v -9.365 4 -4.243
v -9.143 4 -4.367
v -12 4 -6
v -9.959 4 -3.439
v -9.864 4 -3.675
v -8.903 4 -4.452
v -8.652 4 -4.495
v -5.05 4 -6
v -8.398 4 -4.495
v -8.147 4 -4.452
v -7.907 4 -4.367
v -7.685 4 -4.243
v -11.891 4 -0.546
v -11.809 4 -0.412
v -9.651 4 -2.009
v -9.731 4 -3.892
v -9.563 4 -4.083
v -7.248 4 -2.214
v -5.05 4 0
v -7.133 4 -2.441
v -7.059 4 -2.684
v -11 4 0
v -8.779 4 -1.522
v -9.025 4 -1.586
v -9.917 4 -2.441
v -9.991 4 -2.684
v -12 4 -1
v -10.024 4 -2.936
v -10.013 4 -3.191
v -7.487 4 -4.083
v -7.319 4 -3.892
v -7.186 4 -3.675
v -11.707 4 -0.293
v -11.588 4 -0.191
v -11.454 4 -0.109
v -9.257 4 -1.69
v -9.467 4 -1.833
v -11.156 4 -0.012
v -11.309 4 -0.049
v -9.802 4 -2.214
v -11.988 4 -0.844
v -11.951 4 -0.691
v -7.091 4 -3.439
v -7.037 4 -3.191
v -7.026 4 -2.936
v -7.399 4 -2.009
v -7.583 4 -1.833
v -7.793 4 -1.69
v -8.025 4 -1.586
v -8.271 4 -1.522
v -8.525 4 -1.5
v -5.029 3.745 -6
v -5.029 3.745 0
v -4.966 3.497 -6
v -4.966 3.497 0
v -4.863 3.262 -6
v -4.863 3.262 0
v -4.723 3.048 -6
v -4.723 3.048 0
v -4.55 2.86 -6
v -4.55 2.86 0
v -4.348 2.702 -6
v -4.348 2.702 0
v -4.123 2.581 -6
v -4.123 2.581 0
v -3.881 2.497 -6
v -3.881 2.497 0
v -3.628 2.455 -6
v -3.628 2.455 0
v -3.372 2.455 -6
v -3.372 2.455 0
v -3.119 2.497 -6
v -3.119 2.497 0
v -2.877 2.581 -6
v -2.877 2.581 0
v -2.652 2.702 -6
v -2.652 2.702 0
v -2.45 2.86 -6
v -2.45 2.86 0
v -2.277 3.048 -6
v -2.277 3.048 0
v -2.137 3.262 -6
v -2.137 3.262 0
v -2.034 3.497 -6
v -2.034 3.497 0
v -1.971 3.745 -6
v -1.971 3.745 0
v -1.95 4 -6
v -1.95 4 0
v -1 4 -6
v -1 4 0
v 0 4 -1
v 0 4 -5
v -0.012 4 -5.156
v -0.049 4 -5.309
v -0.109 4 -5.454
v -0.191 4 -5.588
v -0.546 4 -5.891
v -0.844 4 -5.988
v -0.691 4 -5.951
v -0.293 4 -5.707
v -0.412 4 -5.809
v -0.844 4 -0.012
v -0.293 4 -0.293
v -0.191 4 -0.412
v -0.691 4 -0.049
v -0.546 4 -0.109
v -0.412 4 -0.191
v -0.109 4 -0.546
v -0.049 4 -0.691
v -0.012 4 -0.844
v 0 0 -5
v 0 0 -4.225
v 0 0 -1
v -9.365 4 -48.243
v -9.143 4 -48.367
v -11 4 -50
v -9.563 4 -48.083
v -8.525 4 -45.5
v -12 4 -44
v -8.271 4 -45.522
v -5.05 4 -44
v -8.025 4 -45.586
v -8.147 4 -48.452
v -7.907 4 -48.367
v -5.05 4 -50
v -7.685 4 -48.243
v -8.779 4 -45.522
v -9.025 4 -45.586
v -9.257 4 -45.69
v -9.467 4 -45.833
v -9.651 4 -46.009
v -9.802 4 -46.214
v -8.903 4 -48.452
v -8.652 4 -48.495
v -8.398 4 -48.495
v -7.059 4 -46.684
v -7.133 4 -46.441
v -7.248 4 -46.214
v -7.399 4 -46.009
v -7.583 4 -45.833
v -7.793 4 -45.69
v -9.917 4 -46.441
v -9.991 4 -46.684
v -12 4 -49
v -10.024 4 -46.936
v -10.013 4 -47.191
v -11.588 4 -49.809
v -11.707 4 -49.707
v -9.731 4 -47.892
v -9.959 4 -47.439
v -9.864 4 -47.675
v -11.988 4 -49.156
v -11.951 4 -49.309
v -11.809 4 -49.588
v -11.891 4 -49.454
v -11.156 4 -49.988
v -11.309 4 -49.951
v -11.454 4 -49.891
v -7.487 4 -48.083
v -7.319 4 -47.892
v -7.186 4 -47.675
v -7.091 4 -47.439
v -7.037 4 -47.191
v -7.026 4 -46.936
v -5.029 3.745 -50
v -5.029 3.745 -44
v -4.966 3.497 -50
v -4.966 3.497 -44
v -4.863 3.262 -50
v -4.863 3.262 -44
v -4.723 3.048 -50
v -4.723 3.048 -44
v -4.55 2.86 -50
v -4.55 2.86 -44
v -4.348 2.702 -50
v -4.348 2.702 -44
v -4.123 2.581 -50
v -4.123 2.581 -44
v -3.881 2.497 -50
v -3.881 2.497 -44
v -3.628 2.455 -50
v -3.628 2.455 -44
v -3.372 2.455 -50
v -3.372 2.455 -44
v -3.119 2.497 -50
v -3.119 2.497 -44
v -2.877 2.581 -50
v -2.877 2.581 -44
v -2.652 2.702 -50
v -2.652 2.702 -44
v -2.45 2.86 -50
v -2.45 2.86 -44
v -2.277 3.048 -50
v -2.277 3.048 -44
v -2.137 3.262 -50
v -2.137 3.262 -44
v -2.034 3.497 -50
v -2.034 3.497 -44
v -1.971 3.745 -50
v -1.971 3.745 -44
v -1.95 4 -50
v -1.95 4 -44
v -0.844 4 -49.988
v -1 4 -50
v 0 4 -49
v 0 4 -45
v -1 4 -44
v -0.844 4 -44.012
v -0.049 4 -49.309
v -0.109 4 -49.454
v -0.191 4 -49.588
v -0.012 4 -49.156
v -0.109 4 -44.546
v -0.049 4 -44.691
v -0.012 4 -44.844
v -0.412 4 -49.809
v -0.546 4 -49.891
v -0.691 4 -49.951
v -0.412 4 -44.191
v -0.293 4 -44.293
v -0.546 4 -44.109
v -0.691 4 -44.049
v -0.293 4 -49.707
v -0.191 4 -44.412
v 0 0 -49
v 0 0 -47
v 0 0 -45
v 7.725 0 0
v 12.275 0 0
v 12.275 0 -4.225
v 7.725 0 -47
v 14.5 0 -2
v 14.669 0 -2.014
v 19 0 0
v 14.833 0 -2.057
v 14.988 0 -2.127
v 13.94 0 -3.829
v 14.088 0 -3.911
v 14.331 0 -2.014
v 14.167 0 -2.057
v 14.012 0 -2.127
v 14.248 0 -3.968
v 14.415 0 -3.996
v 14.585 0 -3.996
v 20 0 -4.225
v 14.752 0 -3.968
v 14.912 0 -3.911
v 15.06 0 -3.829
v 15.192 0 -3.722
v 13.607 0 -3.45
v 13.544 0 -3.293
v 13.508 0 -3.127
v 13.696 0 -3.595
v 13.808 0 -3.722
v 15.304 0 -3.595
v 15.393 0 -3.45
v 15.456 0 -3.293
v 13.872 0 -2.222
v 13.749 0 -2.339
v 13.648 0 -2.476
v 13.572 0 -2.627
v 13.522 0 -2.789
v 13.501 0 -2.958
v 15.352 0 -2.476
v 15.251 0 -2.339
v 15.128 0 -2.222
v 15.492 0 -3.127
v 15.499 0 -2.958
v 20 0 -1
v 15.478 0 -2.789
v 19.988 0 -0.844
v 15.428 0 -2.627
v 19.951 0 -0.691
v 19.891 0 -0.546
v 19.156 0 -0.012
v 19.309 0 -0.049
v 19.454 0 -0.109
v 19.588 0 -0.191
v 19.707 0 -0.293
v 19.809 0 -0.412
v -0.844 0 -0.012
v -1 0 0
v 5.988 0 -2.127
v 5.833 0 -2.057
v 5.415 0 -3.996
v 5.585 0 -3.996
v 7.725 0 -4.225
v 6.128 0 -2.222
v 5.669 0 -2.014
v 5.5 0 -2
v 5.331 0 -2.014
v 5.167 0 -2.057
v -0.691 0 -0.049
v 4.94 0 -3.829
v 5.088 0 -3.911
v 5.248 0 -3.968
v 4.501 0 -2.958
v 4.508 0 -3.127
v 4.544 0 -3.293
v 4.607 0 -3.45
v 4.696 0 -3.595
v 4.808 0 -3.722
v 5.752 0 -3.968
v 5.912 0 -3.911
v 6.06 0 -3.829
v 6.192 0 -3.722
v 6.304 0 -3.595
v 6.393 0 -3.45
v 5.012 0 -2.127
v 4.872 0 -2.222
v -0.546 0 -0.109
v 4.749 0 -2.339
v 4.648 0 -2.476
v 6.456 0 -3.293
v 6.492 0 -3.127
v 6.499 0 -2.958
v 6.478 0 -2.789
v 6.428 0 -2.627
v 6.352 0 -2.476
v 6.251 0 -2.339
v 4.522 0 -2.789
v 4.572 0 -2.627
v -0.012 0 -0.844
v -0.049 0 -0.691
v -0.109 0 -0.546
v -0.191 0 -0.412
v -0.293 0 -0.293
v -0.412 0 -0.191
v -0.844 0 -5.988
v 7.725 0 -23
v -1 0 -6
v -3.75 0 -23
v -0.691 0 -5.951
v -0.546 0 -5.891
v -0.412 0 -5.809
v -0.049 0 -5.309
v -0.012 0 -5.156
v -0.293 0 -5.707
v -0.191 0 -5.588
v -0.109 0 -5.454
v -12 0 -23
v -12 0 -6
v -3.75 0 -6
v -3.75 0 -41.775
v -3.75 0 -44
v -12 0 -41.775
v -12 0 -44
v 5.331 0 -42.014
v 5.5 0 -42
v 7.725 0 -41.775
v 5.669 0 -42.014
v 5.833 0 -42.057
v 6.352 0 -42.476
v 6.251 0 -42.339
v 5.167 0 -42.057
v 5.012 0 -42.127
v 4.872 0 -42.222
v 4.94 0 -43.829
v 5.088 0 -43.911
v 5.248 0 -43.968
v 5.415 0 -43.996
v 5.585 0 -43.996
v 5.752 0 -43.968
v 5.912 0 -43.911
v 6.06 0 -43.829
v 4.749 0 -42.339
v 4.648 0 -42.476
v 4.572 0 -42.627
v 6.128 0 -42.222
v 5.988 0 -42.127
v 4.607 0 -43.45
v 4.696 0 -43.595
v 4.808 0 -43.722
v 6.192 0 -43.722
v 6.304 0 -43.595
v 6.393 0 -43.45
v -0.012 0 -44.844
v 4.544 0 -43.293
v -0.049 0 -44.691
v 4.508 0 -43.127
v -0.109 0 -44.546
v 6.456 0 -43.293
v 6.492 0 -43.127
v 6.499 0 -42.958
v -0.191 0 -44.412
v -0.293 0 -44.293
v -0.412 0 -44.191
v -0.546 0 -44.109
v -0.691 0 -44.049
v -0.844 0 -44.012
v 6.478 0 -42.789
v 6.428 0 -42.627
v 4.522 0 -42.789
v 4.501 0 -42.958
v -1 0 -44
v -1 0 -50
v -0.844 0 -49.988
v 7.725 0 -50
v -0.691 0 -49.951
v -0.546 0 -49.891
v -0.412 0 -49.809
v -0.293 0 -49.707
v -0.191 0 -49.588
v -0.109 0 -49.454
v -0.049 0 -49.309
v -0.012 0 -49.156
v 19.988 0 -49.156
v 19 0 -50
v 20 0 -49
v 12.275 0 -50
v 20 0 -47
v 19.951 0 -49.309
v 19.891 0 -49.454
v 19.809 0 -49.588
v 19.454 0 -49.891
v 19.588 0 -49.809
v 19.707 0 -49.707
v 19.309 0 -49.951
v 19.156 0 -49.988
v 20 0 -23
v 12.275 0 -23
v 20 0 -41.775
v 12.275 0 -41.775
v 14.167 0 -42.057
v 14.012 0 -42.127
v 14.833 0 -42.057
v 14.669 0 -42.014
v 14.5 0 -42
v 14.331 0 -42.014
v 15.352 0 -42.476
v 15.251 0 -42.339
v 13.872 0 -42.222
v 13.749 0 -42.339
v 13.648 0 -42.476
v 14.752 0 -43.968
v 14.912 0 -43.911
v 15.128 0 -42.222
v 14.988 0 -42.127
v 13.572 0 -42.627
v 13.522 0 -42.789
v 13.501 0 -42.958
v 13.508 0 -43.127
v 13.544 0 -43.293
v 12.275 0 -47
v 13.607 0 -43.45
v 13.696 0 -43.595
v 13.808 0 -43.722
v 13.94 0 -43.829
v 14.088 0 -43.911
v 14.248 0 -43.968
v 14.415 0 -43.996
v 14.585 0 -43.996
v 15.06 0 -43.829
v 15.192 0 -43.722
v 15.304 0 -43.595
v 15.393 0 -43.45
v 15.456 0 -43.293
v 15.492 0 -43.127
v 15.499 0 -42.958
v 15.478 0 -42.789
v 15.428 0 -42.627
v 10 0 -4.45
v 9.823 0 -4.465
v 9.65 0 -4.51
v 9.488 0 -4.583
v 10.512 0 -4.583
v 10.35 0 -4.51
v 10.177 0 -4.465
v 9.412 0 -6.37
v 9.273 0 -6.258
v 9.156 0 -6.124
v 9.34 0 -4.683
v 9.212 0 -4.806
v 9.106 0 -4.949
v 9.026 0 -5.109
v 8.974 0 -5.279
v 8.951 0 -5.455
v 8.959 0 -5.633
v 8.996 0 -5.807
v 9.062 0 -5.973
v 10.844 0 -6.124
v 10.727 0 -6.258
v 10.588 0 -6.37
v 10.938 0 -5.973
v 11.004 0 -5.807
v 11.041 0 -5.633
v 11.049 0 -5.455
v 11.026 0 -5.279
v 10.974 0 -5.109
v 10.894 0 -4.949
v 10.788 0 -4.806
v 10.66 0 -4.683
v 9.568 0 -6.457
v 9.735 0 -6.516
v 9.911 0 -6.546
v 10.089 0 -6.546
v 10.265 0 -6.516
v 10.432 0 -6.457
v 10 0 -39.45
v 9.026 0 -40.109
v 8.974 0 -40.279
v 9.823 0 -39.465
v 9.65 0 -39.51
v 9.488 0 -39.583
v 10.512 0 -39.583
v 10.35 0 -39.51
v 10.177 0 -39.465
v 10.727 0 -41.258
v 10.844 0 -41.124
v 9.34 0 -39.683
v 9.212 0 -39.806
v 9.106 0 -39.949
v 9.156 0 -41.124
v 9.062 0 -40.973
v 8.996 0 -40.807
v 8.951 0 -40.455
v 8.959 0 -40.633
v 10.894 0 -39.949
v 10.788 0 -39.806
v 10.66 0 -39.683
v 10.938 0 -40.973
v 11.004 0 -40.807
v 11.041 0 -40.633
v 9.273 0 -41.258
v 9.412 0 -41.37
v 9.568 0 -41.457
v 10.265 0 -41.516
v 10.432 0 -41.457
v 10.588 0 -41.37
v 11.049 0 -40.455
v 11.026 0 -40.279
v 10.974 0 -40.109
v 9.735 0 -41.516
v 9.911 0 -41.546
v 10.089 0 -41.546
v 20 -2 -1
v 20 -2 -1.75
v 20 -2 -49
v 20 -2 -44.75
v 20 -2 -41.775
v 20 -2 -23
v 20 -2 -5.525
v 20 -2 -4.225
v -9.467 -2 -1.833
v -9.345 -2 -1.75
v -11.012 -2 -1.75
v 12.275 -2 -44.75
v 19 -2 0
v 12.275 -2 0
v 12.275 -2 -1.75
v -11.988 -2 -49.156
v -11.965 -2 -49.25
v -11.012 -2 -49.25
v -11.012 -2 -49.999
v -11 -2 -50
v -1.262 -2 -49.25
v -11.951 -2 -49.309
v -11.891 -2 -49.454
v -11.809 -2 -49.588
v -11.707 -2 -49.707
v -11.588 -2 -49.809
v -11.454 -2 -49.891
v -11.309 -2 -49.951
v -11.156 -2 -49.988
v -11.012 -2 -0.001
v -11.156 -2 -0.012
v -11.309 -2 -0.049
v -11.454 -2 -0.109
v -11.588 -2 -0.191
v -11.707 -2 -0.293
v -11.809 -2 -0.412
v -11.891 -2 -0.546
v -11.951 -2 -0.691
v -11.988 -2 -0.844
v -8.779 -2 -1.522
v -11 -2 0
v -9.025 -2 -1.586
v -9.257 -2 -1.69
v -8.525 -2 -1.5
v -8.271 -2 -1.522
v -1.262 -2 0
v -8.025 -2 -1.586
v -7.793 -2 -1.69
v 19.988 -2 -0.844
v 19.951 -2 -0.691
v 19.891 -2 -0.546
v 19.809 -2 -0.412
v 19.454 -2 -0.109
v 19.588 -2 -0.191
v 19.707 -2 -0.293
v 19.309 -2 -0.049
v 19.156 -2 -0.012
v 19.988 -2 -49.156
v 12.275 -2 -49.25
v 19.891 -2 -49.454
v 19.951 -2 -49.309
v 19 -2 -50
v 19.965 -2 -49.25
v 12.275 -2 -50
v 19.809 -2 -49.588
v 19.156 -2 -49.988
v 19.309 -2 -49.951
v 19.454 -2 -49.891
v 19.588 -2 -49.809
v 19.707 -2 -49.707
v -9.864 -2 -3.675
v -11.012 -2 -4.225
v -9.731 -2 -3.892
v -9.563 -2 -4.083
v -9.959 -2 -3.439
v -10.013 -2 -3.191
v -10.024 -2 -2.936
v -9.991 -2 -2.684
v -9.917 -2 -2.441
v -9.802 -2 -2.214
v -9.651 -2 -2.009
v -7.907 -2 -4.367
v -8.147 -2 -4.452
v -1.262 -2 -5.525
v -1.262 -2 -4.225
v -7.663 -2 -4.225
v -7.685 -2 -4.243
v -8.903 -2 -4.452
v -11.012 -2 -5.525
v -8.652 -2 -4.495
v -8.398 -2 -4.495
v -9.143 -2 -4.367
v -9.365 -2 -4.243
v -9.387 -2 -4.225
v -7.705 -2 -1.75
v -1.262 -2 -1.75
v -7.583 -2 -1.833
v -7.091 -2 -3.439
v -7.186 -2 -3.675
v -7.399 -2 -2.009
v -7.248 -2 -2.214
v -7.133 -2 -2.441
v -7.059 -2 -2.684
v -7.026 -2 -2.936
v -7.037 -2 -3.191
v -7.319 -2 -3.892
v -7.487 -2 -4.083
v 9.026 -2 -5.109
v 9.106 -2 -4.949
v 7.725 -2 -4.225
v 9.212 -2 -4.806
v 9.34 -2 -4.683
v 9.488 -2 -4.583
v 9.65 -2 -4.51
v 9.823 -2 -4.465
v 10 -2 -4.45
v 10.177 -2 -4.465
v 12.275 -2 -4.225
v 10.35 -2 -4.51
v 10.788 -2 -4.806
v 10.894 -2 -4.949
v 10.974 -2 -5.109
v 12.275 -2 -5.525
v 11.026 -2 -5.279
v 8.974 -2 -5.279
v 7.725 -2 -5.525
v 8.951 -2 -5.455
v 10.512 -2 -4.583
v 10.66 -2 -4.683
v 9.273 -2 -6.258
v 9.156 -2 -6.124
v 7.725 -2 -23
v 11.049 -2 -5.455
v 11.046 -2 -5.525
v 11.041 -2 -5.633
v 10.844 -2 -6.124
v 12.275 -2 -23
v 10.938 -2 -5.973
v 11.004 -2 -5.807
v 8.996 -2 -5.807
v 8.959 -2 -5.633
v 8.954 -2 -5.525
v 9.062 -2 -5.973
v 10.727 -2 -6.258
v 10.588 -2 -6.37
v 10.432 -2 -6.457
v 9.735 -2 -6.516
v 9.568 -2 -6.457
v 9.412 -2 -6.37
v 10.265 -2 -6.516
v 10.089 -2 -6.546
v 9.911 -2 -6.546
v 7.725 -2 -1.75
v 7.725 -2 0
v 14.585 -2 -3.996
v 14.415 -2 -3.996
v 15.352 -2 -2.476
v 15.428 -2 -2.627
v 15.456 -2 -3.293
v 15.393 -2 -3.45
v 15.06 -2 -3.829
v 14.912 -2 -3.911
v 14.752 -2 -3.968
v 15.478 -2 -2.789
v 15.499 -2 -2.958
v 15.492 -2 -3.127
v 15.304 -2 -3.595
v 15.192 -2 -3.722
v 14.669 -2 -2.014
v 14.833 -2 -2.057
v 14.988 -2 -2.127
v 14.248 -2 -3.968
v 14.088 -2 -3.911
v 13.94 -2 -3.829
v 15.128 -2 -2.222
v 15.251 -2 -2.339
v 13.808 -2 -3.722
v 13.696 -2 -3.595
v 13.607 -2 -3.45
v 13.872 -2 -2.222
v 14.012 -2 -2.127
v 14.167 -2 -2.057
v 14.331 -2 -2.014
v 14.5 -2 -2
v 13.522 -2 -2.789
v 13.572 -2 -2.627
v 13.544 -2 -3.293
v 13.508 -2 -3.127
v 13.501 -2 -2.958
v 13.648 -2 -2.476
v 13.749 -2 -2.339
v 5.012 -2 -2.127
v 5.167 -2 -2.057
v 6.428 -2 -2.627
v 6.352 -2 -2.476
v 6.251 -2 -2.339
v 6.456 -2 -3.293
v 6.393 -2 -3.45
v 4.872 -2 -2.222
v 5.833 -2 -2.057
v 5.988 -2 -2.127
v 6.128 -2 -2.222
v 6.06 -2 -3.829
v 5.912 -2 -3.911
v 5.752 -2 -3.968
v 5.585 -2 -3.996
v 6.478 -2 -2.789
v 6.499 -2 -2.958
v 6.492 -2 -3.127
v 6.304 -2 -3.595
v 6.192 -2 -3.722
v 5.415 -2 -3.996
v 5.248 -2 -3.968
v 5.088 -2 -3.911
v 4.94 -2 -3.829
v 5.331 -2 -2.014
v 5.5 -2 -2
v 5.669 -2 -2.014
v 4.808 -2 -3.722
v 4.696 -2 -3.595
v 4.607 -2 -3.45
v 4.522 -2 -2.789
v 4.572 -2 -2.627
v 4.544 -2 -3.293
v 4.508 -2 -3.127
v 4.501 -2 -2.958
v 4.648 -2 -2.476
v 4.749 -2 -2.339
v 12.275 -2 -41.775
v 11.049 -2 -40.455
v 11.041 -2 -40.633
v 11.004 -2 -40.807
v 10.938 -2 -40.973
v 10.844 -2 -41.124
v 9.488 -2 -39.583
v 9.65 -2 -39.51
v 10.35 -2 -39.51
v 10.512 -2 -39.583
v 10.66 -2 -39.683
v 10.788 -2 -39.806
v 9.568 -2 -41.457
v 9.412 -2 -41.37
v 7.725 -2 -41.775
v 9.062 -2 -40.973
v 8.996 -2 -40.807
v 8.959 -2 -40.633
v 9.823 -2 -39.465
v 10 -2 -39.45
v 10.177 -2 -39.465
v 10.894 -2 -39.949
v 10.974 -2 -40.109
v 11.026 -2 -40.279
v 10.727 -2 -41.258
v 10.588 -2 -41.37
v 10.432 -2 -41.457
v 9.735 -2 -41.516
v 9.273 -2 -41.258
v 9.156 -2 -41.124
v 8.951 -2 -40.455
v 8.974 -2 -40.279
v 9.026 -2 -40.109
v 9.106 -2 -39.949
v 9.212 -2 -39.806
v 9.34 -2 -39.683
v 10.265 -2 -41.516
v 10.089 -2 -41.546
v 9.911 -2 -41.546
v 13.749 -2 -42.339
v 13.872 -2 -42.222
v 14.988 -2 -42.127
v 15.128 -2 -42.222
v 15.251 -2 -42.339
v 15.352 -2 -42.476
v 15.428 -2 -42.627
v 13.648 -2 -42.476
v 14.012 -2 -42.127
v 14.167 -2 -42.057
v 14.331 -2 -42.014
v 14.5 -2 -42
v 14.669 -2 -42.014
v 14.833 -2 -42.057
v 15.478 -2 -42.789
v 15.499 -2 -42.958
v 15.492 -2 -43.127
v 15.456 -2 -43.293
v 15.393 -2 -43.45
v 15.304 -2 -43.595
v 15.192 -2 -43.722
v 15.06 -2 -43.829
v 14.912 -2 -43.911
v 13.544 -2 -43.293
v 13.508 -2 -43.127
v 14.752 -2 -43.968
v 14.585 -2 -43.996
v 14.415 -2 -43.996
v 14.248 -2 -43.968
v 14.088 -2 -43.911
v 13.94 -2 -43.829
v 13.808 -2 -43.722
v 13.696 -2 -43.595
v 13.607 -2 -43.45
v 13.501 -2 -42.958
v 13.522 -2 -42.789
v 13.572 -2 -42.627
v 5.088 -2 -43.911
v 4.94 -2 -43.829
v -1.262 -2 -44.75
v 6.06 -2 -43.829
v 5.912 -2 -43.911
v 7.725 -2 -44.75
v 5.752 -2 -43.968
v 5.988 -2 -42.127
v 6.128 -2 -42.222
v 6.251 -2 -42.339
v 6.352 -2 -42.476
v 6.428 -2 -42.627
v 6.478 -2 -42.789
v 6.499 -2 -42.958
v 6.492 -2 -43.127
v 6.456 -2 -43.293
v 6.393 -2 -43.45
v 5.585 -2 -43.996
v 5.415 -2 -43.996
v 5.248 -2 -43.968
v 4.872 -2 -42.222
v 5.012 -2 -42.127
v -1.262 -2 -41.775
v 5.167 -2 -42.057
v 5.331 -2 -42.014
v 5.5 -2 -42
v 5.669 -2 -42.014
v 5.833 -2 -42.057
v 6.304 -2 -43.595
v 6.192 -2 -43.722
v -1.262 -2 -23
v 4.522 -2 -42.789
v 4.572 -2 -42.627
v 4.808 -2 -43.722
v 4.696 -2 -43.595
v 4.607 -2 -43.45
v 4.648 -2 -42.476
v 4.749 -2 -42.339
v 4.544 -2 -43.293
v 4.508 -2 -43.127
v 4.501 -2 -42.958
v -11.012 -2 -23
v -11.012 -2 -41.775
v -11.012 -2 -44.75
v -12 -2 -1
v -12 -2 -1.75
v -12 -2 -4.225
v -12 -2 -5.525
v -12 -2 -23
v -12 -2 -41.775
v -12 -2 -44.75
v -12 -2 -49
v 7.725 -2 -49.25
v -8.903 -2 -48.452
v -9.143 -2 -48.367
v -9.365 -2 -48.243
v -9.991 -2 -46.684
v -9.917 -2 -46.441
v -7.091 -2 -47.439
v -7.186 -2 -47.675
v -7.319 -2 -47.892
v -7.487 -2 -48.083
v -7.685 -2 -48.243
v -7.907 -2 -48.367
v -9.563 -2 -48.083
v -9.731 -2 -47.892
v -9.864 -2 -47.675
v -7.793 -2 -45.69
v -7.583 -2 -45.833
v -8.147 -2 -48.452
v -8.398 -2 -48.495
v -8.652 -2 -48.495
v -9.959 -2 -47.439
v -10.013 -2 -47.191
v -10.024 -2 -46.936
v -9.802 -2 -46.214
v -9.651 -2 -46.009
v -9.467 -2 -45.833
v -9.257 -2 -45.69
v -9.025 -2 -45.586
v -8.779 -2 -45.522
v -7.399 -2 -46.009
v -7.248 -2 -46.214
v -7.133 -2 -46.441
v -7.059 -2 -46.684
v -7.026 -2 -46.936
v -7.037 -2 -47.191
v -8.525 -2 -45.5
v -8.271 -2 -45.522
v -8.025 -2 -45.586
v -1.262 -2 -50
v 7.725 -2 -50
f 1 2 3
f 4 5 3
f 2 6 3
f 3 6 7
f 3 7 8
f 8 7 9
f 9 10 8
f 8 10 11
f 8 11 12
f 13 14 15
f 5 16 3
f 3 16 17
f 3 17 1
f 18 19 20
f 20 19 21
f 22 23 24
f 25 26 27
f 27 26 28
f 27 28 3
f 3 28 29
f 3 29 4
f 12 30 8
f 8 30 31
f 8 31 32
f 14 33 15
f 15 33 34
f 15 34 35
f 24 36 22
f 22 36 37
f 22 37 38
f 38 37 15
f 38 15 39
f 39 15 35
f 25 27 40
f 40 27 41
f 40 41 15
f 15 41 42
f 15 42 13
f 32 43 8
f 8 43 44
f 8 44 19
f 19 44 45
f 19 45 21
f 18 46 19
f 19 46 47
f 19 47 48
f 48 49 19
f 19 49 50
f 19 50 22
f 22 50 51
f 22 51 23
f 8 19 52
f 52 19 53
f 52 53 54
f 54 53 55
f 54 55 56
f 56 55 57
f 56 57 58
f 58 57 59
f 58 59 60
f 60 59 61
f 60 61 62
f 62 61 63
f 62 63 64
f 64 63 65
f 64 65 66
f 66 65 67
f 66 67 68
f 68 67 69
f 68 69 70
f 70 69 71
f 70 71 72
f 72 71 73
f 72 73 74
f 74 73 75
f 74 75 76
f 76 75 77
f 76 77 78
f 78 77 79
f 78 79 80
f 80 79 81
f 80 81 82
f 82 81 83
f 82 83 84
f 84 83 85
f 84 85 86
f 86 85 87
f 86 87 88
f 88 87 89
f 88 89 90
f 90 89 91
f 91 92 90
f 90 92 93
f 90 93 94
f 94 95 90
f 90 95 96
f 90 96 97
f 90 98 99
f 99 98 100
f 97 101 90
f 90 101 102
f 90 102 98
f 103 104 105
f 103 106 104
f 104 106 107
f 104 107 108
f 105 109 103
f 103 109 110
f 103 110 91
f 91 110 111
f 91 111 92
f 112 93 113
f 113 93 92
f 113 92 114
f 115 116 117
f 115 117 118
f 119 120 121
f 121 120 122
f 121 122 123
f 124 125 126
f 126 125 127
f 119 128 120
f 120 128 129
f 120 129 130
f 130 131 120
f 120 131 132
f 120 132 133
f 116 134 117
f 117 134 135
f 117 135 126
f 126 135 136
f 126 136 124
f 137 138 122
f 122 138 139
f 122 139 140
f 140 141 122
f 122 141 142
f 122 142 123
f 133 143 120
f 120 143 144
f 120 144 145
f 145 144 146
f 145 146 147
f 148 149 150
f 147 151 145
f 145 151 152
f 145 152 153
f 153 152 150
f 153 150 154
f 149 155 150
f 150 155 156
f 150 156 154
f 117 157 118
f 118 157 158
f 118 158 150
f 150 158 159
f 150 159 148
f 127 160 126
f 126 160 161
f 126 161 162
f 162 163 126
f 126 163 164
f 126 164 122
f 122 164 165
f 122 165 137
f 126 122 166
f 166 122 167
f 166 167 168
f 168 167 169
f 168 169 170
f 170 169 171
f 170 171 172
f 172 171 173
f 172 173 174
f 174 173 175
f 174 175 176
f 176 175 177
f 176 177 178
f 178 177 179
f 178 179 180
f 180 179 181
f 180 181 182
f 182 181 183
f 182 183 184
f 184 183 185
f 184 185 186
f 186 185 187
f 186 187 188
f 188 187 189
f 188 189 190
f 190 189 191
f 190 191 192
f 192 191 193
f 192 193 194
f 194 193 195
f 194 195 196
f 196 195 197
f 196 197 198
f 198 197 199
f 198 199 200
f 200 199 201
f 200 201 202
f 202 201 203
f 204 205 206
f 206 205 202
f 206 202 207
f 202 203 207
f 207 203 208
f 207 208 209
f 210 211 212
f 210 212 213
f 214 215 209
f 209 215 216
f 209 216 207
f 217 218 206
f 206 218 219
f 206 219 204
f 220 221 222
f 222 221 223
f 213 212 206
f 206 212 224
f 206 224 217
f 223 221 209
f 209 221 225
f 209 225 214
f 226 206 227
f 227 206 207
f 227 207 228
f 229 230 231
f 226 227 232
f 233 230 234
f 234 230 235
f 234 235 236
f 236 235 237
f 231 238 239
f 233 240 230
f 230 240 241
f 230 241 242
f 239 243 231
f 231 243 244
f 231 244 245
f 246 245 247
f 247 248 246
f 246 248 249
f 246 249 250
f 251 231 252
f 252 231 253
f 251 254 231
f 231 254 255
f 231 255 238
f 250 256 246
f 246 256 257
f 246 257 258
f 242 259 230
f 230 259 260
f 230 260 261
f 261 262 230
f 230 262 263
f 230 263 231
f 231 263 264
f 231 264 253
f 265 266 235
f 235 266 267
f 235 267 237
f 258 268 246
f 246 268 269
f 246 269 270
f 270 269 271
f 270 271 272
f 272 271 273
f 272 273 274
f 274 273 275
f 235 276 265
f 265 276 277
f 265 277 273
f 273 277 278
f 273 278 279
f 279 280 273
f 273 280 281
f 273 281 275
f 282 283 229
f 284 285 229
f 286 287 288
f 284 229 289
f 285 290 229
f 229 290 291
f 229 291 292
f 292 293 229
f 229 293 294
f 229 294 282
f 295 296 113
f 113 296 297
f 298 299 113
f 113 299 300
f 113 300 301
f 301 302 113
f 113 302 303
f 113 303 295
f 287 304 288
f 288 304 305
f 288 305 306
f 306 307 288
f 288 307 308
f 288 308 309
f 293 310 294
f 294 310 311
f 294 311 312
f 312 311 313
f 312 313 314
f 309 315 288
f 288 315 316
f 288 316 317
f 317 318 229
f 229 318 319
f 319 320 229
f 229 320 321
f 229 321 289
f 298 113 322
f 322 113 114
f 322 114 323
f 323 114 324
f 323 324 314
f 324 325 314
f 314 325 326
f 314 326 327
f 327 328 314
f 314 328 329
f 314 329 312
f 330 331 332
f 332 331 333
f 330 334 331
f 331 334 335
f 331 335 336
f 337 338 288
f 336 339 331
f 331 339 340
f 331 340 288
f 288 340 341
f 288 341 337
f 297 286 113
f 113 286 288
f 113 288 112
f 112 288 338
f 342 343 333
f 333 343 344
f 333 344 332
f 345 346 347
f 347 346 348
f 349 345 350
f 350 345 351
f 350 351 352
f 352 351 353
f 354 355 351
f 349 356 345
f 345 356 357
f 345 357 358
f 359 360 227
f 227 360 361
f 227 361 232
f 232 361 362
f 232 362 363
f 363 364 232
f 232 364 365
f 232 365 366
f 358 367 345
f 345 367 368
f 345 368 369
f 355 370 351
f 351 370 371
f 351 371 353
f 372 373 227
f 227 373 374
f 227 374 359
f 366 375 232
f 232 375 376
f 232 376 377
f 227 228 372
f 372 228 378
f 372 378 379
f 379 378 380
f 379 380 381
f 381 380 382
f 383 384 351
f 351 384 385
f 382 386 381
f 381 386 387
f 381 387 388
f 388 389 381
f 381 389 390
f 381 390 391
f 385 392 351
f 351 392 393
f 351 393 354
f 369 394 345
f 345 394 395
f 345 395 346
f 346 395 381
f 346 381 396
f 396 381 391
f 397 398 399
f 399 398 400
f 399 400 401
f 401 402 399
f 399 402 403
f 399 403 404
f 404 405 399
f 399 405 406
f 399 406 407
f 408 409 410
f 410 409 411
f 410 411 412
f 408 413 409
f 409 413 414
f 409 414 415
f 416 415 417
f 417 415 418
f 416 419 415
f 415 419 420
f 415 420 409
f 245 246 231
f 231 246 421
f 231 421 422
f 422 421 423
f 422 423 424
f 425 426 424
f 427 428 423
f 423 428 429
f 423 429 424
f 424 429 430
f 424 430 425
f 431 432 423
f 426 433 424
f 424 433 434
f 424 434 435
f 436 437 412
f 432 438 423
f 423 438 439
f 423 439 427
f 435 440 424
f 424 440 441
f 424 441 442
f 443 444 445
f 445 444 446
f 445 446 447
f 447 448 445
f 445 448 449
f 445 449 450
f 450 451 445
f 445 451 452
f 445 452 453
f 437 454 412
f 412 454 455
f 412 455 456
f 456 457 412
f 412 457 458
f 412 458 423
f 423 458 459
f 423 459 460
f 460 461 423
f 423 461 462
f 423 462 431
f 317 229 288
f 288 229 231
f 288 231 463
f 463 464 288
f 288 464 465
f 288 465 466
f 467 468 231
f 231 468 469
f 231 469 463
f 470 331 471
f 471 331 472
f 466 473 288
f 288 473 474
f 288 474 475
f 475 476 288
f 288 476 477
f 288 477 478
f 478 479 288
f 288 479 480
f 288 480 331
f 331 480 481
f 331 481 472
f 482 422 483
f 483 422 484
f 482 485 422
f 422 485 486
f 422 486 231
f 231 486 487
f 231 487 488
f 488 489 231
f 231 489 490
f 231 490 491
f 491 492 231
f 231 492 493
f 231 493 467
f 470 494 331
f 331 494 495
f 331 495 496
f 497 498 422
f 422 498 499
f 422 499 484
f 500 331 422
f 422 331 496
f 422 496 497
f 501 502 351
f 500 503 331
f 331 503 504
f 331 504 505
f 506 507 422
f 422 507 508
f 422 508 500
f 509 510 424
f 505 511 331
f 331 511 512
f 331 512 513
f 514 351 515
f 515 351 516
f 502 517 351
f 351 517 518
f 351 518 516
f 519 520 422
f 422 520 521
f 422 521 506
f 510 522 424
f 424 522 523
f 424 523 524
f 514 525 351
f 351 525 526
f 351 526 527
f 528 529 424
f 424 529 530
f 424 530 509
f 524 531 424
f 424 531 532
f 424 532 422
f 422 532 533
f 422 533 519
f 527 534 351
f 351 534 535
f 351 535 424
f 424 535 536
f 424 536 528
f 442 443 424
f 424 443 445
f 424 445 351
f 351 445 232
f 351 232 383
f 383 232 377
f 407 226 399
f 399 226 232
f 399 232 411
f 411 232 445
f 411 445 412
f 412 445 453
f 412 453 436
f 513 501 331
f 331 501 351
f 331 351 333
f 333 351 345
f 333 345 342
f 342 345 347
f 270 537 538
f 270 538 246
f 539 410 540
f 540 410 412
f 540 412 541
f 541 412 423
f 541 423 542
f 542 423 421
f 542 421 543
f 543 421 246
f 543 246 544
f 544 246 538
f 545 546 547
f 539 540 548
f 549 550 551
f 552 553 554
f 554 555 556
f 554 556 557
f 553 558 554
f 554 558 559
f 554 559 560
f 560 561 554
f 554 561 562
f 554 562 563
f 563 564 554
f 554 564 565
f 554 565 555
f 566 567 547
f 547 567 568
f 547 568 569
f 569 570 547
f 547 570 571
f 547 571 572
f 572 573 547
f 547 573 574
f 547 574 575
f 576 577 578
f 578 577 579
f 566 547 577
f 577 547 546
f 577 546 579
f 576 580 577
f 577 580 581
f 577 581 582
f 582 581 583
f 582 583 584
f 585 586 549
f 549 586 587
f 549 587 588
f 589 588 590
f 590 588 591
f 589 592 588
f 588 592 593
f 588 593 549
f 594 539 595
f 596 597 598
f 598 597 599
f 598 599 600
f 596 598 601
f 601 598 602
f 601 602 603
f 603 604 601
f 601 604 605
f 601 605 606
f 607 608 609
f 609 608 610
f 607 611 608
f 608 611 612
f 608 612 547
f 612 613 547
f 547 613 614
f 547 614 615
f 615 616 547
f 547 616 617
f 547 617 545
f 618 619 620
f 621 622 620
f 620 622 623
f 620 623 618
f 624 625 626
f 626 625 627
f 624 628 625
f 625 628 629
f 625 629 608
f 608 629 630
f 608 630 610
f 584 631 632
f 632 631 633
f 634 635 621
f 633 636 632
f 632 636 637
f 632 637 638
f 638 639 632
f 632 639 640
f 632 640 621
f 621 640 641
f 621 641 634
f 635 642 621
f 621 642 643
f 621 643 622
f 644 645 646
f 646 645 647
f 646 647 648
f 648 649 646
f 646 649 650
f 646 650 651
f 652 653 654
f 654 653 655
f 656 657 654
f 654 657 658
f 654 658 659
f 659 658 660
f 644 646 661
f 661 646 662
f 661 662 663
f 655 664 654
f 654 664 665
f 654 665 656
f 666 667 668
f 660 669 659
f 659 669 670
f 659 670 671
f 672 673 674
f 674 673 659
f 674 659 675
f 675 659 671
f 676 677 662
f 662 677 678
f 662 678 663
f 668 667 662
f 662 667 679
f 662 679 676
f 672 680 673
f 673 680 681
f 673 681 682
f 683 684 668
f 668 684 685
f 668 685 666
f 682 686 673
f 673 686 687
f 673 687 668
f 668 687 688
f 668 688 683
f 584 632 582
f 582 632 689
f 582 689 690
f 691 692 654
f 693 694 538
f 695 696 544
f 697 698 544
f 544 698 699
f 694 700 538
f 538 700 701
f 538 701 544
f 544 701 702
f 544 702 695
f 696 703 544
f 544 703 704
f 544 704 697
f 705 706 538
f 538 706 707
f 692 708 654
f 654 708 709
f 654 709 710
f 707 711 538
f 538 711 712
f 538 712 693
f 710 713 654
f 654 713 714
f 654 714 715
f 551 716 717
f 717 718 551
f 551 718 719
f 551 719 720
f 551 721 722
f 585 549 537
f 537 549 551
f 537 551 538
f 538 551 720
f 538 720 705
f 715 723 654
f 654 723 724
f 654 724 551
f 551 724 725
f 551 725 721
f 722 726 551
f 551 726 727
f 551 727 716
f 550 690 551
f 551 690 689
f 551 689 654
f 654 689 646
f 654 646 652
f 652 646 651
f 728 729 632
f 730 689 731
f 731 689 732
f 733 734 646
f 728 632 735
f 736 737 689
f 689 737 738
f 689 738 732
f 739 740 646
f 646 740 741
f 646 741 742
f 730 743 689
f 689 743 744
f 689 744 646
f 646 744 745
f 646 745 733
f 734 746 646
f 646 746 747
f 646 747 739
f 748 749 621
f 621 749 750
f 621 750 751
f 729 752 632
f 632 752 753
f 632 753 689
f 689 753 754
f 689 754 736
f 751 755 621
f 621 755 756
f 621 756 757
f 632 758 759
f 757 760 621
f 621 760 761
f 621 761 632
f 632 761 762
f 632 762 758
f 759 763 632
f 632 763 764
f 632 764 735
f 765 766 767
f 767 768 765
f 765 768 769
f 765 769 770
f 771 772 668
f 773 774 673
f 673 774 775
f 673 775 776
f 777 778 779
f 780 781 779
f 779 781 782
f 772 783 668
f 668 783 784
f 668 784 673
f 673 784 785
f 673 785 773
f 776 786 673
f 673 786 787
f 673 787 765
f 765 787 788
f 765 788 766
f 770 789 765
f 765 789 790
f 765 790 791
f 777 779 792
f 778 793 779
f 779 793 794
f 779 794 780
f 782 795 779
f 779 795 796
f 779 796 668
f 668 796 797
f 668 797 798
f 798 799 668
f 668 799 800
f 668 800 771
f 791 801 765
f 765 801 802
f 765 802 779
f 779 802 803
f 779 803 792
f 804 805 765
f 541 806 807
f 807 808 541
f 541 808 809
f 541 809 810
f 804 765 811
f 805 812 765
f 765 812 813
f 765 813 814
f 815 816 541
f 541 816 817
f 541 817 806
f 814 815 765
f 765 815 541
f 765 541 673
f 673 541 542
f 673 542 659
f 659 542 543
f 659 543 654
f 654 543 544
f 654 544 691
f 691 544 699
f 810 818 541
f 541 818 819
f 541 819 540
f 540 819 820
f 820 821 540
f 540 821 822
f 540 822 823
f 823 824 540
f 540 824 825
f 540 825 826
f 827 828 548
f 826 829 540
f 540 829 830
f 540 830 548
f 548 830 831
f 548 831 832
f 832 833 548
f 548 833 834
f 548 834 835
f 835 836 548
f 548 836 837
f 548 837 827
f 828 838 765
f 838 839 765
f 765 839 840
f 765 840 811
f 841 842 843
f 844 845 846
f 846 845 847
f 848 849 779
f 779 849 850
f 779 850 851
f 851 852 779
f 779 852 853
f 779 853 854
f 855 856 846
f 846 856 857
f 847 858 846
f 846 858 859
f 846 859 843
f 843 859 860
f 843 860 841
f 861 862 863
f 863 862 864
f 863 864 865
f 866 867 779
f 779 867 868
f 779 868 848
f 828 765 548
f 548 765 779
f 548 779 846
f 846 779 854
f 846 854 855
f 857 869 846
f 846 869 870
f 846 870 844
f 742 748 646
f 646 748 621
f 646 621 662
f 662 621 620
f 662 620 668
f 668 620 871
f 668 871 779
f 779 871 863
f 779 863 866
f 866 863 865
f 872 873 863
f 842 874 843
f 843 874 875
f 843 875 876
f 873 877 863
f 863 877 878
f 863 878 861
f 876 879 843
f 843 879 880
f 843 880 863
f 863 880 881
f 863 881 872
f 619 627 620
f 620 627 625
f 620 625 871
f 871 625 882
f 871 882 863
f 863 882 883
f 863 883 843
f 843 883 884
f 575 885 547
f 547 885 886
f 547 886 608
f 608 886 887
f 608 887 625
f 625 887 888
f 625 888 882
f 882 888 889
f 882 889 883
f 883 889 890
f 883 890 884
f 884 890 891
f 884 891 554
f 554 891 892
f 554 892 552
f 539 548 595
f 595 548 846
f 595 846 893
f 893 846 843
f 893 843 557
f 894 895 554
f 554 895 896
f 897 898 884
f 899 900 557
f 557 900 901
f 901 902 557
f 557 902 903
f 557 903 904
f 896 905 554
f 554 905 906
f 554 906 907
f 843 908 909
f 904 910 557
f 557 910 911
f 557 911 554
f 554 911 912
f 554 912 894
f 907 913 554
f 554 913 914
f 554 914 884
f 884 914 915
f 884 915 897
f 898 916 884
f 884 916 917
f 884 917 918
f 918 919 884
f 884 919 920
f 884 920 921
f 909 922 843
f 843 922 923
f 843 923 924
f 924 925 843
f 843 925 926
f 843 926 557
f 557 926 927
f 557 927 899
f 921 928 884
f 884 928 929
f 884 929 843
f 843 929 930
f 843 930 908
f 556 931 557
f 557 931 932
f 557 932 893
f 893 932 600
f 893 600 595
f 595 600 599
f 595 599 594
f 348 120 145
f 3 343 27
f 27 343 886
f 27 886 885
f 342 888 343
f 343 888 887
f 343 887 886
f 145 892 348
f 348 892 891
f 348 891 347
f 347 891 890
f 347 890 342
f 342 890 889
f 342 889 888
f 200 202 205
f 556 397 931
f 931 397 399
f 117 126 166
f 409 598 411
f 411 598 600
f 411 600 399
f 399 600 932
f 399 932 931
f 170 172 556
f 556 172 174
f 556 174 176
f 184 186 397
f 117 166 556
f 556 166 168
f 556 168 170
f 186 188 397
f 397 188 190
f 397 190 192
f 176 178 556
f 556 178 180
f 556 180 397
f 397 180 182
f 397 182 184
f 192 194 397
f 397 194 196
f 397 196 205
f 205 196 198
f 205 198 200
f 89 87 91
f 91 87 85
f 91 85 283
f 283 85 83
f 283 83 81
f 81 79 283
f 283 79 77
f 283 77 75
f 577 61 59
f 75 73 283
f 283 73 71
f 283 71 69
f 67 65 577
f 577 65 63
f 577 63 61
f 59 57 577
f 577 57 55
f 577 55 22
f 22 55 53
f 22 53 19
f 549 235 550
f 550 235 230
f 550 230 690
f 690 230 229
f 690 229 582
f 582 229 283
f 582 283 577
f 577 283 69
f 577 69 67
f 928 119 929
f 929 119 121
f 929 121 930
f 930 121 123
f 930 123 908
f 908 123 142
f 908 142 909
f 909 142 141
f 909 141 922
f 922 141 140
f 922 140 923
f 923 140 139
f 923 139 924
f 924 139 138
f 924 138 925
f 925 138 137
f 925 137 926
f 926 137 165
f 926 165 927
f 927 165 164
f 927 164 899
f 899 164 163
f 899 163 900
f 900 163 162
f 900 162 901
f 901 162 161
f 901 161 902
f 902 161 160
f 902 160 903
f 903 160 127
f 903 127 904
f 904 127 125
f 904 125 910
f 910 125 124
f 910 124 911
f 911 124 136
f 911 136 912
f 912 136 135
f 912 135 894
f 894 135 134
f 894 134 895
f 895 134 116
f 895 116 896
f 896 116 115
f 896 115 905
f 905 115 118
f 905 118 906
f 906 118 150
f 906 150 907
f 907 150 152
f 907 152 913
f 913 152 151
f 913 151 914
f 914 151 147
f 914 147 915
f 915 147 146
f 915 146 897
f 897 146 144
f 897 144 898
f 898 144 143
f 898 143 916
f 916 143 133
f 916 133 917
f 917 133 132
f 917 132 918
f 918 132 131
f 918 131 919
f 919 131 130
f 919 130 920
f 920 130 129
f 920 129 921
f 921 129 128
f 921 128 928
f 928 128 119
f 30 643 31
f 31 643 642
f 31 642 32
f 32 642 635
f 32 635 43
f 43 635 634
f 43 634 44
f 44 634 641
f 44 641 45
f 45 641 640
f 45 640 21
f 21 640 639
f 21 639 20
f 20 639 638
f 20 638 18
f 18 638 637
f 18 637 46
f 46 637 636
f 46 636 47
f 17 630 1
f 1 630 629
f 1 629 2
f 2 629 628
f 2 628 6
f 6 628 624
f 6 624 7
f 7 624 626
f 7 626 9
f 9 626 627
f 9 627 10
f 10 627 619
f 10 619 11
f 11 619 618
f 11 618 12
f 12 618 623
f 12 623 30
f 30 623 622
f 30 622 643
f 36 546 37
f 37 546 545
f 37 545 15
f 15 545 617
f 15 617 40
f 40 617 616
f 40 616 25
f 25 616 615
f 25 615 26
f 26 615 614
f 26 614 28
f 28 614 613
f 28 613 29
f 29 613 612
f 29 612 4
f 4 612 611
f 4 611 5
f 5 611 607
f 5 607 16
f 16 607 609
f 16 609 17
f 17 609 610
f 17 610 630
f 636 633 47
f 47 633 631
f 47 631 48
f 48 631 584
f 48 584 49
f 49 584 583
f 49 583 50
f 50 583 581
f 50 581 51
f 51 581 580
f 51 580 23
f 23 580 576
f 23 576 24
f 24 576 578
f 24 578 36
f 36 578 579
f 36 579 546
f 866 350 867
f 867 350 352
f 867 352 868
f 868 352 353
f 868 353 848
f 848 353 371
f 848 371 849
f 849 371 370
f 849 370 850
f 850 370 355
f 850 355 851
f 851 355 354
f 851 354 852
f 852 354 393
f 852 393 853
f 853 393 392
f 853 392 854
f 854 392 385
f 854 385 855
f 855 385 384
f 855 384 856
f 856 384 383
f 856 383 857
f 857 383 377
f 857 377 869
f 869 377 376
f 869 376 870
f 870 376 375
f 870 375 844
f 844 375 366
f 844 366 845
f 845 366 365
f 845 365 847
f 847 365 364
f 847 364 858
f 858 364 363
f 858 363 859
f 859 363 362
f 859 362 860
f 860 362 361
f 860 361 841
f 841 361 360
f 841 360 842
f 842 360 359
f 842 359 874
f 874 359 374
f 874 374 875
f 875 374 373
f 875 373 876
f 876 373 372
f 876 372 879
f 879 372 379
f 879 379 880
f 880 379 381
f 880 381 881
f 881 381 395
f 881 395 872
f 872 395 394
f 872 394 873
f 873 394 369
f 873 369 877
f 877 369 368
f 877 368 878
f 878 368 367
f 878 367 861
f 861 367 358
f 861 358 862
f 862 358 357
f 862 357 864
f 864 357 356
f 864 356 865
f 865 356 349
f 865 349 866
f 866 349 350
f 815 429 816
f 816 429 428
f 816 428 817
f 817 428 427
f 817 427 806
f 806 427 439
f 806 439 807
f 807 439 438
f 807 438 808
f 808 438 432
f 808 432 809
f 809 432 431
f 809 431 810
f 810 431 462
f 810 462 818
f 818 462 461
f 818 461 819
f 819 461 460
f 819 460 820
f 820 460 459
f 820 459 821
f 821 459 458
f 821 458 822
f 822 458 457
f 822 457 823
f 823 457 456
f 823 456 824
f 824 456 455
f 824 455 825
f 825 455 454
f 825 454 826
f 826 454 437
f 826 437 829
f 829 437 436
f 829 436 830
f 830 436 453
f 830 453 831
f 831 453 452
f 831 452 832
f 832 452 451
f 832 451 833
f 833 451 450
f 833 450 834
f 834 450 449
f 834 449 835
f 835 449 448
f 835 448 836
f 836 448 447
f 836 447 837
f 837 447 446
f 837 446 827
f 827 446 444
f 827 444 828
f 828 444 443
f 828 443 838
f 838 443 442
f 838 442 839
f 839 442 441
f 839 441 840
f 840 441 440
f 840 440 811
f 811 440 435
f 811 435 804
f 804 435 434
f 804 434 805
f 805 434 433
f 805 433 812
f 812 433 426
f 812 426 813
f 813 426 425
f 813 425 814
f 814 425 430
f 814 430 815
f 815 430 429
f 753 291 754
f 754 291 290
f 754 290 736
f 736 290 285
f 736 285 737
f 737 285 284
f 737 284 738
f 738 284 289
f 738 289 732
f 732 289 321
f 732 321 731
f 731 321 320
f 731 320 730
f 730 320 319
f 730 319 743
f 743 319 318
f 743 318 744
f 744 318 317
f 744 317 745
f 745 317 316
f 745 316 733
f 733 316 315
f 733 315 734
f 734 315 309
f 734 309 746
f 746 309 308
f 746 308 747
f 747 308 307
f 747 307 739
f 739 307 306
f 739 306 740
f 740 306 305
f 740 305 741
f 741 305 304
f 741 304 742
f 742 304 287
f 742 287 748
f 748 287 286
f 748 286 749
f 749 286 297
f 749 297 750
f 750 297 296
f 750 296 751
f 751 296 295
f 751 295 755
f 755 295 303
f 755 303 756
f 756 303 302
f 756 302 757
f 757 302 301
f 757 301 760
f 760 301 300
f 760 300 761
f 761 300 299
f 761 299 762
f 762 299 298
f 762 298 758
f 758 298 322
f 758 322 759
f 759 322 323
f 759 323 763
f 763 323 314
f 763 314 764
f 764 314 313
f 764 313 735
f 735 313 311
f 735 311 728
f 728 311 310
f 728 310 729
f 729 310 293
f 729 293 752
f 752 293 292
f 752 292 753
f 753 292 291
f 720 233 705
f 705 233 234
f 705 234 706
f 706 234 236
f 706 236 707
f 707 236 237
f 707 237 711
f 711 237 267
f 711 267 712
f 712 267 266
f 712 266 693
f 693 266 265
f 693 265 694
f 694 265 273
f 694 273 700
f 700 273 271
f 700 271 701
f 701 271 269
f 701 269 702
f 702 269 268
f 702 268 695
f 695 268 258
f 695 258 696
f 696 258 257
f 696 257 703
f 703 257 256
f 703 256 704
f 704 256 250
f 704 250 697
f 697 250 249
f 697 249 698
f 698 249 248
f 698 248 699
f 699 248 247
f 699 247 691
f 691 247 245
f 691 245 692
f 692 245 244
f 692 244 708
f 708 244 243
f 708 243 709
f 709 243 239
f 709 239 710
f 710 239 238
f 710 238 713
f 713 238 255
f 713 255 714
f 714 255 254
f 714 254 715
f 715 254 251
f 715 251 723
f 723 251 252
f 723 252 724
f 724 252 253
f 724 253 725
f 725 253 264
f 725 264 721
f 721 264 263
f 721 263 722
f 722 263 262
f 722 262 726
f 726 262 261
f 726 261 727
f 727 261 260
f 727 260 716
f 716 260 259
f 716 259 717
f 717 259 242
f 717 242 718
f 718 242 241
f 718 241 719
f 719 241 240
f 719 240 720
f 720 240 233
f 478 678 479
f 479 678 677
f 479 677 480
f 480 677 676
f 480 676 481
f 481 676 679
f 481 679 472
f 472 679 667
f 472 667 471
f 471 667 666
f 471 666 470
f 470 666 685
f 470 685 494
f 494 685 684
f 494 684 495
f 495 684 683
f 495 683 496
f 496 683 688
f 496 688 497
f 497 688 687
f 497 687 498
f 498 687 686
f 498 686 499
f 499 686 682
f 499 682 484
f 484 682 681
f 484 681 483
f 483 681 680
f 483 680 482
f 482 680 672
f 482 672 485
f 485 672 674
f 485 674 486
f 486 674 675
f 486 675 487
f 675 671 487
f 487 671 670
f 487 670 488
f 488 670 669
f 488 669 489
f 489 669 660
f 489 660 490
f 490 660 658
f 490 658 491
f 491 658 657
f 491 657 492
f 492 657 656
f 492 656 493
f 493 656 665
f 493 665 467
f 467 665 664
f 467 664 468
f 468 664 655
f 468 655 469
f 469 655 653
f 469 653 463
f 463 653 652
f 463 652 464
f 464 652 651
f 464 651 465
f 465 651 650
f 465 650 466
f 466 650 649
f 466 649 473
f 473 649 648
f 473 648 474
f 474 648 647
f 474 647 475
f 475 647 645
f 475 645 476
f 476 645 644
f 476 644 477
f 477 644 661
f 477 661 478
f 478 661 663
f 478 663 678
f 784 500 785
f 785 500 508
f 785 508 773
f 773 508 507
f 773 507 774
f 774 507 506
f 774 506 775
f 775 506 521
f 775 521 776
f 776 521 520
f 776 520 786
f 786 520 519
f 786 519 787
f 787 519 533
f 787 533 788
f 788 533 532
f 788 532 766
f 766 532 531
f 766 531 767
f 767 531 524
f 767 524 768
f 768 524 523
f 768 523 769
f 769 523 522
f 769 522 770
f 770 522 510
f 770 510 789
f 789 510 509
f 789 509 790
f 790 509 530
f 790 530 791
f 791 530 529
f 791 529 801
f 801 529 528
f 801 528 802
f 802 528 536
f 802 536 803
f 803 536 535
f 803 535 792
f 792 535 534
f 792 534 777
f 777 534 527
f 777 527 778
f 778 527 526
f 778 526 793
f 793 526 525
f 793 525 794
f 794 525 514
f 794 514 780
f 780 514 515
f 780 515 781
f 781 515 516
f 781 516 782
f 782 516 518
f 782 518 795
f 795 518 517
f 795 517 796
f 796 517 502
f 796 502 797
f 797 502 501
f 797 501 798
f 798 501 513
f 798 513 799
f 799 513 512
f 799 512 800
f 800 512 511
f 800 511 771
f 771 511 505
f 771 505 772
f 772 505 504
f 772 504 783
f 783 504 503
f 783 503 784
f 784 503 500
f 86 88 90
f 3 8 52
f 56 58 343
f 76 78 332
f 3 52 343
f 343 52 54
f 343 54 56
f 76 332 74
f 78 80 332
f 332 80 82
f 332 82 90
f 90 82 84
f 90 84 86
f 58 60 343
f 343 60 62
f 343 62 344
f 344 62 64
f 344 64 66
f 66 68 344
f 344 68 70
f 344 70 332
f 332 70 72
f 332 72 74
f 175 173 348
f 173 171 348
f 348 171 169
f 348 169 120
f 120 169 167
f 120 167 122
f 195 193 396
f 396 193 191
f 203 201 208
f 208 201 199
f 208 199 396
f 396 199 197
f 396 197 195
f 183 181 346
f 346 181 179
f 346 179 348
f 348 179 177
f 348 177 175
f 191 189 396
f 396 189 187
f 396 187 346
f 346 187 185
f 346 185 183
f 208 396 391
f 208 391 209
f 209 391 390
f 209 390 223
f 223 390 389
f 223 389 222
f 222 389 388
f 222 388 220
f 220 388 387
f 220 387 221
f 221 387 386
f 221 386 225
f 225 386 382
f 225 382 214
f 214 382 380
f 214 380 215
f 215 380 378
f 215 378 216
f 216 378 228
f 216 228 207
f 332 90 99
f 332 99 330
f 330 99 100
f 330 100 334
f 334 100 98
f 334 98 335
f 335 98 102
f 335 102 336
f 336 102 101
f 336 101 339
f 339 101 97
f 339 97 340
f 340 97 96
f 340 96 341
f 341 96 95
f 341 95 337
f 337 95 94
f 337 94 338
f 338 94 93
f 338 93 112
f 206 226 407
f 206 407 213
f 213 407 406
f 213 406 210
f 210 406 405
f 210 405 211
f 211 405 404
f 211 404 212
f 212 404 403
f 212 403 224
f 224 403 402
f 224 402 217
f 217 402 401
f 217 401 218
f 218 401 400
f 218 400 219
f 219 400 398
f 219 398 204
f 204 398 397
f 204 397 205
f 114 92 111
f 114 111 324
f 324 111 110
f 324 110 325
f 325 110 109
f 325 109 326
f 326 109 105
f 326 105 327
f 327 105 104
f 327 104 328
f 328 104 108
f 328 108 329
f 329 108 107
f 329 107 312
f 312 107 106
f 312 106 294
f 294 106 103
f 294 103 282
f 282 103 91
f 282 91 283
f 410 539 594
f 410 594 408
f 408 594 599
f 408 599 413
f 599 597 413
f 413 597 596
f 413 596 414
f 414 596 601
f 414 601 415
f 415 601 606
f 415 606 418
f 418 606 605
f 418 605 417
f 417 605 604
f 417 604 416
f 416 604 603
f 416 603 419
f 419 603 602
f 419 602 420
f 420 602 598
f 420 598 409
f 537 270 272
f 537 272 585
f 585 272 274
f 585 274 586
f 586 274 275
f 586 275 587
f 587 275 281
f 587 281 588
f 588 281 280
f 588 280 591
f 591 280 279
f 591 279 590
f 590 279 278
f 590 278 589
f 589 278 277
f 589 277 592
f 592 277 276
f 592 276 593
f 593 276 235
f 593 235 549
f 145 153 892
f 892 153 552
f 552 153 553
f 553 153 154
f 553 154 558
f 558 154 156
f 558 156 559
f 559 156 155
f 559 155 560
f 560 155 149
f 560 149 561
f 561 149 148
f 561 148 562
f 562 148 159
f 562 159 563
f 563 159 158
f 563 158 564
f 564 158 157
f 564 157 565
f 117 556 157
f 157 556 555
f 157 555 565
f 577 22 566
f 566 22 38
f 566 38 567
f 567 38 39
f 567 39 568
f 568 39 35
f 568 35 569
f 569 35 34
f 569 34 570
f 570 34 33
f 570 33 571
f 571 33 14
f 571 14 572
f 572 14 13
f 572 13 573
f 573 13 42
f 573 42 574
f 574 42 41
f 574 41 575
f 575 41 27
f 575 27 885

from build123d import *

# Parameters (mm, degrees)
EXTRUDE_1_DEPTH     = 50
SKETCH_2_R          = 1.5
SKETCH_2_R_2        = 1
SKETCH_2_R_3        = 1.05
CUT_EXTRUDE_1_DEPTH = 55.184868737
SKETCH_3_W          = 38
SKETCH_3_H          = 8.212947129
CUT_EXTRUDE_2_DEPTH = 50
FILLET_1_R          = 1


with BuildPart() as part:
    # 草圖1 → 填料-伸長1 (new body)
    with BuildSketch(Plane.XY):
        with BuildLine():
            Line((0, 4), (0, 0))
            Line((0, 0), (20, 0))
            Line((20, 0), (20, -2))
            Line((20, -2), (-12, -2))
            Line((-12, -2), (-12, 4))
            Line((-12, 4), (-5.05, 4))
            ThreePointArc((-5.05, 4), (-3.5, 2.45), (-1.95, 4))
            Line((-1.95, 4), (0, 4))
        make_face()
    extrude(amount=-EXTRUDE_1_DEPTH)

    # 草圖2 → 除料-伸長1 (cut, through all)
    with BuildSketch(Plane(origin=(0, 4, 0), x_dir=(1, 0, 0), z_dir=(0, 1, 0))):
        with Locations(Location((-8.525, 47, 0), (0, 0, 270))):
            Circle(SKETCH_2_R)
        with Locations(Location((-8.525, 3, 0), (0, 0, 270))):
            Circle(SKETCH_2_R)
        with Locations(Location((5.5, 43, 0), (0, 0, 270))):
            Circle(SKETCH_2_R_2)
        with Locations(Location((14.5, 43, 0), (0, 0, 270))):
            Circle(SKETCH_2_R_2)
        with Locations(Location((5.5, 3, 0), (0, 0, 270))):
            Circle(SKETCH_2_R_2)
        with Locations(Location((14.5, 3, 0), (0, 0, 270))):
            Circle(SKETCH_2_R_2)
        with Locations(Location((10, 5.5, 0), (0, 0, 270))):
            Circle(SKETCH_2_R_3)
        with Locations(Location((10, 40.5, 0), (0, 0, 270))):
            Circle(SKETCH_2_R_3)
    extrude(amount=-CUT_EXTRUDE_1_DEPTH, mode=Mode.SUBTRACT)

    # 草圖3 → 除料-伸長2 (cut)
    with BuildSketch(Plane(origin=(0, 0, 0), x_dir=(0, 0, -1), z_dir=(1, 0, 0))):
        with Locations((25, 4.106473564)):
            Rectangle(SKETCH_3_W, SKETCH_3_H)
    extrude(amount=-CUT_EXTRUDE_2_DEPTH, mode=Mode.SUBTRACT)

    # 圓角1
    fillet_1_edges = [part.edges().sort_by_distance(p)[0] for p in [
        (-12, 1, 0),
        (20, -1, -50),
        (0, 2, -50),
        (-12, 1, -50),
        (0, 2, -44),
        (0, 2, -6),
        (0, 2, 0),
        (20, -1, 0),
    ]]
    fillet(fillet_1_edges, radius=FILLET_1_R)


solid = part.part
